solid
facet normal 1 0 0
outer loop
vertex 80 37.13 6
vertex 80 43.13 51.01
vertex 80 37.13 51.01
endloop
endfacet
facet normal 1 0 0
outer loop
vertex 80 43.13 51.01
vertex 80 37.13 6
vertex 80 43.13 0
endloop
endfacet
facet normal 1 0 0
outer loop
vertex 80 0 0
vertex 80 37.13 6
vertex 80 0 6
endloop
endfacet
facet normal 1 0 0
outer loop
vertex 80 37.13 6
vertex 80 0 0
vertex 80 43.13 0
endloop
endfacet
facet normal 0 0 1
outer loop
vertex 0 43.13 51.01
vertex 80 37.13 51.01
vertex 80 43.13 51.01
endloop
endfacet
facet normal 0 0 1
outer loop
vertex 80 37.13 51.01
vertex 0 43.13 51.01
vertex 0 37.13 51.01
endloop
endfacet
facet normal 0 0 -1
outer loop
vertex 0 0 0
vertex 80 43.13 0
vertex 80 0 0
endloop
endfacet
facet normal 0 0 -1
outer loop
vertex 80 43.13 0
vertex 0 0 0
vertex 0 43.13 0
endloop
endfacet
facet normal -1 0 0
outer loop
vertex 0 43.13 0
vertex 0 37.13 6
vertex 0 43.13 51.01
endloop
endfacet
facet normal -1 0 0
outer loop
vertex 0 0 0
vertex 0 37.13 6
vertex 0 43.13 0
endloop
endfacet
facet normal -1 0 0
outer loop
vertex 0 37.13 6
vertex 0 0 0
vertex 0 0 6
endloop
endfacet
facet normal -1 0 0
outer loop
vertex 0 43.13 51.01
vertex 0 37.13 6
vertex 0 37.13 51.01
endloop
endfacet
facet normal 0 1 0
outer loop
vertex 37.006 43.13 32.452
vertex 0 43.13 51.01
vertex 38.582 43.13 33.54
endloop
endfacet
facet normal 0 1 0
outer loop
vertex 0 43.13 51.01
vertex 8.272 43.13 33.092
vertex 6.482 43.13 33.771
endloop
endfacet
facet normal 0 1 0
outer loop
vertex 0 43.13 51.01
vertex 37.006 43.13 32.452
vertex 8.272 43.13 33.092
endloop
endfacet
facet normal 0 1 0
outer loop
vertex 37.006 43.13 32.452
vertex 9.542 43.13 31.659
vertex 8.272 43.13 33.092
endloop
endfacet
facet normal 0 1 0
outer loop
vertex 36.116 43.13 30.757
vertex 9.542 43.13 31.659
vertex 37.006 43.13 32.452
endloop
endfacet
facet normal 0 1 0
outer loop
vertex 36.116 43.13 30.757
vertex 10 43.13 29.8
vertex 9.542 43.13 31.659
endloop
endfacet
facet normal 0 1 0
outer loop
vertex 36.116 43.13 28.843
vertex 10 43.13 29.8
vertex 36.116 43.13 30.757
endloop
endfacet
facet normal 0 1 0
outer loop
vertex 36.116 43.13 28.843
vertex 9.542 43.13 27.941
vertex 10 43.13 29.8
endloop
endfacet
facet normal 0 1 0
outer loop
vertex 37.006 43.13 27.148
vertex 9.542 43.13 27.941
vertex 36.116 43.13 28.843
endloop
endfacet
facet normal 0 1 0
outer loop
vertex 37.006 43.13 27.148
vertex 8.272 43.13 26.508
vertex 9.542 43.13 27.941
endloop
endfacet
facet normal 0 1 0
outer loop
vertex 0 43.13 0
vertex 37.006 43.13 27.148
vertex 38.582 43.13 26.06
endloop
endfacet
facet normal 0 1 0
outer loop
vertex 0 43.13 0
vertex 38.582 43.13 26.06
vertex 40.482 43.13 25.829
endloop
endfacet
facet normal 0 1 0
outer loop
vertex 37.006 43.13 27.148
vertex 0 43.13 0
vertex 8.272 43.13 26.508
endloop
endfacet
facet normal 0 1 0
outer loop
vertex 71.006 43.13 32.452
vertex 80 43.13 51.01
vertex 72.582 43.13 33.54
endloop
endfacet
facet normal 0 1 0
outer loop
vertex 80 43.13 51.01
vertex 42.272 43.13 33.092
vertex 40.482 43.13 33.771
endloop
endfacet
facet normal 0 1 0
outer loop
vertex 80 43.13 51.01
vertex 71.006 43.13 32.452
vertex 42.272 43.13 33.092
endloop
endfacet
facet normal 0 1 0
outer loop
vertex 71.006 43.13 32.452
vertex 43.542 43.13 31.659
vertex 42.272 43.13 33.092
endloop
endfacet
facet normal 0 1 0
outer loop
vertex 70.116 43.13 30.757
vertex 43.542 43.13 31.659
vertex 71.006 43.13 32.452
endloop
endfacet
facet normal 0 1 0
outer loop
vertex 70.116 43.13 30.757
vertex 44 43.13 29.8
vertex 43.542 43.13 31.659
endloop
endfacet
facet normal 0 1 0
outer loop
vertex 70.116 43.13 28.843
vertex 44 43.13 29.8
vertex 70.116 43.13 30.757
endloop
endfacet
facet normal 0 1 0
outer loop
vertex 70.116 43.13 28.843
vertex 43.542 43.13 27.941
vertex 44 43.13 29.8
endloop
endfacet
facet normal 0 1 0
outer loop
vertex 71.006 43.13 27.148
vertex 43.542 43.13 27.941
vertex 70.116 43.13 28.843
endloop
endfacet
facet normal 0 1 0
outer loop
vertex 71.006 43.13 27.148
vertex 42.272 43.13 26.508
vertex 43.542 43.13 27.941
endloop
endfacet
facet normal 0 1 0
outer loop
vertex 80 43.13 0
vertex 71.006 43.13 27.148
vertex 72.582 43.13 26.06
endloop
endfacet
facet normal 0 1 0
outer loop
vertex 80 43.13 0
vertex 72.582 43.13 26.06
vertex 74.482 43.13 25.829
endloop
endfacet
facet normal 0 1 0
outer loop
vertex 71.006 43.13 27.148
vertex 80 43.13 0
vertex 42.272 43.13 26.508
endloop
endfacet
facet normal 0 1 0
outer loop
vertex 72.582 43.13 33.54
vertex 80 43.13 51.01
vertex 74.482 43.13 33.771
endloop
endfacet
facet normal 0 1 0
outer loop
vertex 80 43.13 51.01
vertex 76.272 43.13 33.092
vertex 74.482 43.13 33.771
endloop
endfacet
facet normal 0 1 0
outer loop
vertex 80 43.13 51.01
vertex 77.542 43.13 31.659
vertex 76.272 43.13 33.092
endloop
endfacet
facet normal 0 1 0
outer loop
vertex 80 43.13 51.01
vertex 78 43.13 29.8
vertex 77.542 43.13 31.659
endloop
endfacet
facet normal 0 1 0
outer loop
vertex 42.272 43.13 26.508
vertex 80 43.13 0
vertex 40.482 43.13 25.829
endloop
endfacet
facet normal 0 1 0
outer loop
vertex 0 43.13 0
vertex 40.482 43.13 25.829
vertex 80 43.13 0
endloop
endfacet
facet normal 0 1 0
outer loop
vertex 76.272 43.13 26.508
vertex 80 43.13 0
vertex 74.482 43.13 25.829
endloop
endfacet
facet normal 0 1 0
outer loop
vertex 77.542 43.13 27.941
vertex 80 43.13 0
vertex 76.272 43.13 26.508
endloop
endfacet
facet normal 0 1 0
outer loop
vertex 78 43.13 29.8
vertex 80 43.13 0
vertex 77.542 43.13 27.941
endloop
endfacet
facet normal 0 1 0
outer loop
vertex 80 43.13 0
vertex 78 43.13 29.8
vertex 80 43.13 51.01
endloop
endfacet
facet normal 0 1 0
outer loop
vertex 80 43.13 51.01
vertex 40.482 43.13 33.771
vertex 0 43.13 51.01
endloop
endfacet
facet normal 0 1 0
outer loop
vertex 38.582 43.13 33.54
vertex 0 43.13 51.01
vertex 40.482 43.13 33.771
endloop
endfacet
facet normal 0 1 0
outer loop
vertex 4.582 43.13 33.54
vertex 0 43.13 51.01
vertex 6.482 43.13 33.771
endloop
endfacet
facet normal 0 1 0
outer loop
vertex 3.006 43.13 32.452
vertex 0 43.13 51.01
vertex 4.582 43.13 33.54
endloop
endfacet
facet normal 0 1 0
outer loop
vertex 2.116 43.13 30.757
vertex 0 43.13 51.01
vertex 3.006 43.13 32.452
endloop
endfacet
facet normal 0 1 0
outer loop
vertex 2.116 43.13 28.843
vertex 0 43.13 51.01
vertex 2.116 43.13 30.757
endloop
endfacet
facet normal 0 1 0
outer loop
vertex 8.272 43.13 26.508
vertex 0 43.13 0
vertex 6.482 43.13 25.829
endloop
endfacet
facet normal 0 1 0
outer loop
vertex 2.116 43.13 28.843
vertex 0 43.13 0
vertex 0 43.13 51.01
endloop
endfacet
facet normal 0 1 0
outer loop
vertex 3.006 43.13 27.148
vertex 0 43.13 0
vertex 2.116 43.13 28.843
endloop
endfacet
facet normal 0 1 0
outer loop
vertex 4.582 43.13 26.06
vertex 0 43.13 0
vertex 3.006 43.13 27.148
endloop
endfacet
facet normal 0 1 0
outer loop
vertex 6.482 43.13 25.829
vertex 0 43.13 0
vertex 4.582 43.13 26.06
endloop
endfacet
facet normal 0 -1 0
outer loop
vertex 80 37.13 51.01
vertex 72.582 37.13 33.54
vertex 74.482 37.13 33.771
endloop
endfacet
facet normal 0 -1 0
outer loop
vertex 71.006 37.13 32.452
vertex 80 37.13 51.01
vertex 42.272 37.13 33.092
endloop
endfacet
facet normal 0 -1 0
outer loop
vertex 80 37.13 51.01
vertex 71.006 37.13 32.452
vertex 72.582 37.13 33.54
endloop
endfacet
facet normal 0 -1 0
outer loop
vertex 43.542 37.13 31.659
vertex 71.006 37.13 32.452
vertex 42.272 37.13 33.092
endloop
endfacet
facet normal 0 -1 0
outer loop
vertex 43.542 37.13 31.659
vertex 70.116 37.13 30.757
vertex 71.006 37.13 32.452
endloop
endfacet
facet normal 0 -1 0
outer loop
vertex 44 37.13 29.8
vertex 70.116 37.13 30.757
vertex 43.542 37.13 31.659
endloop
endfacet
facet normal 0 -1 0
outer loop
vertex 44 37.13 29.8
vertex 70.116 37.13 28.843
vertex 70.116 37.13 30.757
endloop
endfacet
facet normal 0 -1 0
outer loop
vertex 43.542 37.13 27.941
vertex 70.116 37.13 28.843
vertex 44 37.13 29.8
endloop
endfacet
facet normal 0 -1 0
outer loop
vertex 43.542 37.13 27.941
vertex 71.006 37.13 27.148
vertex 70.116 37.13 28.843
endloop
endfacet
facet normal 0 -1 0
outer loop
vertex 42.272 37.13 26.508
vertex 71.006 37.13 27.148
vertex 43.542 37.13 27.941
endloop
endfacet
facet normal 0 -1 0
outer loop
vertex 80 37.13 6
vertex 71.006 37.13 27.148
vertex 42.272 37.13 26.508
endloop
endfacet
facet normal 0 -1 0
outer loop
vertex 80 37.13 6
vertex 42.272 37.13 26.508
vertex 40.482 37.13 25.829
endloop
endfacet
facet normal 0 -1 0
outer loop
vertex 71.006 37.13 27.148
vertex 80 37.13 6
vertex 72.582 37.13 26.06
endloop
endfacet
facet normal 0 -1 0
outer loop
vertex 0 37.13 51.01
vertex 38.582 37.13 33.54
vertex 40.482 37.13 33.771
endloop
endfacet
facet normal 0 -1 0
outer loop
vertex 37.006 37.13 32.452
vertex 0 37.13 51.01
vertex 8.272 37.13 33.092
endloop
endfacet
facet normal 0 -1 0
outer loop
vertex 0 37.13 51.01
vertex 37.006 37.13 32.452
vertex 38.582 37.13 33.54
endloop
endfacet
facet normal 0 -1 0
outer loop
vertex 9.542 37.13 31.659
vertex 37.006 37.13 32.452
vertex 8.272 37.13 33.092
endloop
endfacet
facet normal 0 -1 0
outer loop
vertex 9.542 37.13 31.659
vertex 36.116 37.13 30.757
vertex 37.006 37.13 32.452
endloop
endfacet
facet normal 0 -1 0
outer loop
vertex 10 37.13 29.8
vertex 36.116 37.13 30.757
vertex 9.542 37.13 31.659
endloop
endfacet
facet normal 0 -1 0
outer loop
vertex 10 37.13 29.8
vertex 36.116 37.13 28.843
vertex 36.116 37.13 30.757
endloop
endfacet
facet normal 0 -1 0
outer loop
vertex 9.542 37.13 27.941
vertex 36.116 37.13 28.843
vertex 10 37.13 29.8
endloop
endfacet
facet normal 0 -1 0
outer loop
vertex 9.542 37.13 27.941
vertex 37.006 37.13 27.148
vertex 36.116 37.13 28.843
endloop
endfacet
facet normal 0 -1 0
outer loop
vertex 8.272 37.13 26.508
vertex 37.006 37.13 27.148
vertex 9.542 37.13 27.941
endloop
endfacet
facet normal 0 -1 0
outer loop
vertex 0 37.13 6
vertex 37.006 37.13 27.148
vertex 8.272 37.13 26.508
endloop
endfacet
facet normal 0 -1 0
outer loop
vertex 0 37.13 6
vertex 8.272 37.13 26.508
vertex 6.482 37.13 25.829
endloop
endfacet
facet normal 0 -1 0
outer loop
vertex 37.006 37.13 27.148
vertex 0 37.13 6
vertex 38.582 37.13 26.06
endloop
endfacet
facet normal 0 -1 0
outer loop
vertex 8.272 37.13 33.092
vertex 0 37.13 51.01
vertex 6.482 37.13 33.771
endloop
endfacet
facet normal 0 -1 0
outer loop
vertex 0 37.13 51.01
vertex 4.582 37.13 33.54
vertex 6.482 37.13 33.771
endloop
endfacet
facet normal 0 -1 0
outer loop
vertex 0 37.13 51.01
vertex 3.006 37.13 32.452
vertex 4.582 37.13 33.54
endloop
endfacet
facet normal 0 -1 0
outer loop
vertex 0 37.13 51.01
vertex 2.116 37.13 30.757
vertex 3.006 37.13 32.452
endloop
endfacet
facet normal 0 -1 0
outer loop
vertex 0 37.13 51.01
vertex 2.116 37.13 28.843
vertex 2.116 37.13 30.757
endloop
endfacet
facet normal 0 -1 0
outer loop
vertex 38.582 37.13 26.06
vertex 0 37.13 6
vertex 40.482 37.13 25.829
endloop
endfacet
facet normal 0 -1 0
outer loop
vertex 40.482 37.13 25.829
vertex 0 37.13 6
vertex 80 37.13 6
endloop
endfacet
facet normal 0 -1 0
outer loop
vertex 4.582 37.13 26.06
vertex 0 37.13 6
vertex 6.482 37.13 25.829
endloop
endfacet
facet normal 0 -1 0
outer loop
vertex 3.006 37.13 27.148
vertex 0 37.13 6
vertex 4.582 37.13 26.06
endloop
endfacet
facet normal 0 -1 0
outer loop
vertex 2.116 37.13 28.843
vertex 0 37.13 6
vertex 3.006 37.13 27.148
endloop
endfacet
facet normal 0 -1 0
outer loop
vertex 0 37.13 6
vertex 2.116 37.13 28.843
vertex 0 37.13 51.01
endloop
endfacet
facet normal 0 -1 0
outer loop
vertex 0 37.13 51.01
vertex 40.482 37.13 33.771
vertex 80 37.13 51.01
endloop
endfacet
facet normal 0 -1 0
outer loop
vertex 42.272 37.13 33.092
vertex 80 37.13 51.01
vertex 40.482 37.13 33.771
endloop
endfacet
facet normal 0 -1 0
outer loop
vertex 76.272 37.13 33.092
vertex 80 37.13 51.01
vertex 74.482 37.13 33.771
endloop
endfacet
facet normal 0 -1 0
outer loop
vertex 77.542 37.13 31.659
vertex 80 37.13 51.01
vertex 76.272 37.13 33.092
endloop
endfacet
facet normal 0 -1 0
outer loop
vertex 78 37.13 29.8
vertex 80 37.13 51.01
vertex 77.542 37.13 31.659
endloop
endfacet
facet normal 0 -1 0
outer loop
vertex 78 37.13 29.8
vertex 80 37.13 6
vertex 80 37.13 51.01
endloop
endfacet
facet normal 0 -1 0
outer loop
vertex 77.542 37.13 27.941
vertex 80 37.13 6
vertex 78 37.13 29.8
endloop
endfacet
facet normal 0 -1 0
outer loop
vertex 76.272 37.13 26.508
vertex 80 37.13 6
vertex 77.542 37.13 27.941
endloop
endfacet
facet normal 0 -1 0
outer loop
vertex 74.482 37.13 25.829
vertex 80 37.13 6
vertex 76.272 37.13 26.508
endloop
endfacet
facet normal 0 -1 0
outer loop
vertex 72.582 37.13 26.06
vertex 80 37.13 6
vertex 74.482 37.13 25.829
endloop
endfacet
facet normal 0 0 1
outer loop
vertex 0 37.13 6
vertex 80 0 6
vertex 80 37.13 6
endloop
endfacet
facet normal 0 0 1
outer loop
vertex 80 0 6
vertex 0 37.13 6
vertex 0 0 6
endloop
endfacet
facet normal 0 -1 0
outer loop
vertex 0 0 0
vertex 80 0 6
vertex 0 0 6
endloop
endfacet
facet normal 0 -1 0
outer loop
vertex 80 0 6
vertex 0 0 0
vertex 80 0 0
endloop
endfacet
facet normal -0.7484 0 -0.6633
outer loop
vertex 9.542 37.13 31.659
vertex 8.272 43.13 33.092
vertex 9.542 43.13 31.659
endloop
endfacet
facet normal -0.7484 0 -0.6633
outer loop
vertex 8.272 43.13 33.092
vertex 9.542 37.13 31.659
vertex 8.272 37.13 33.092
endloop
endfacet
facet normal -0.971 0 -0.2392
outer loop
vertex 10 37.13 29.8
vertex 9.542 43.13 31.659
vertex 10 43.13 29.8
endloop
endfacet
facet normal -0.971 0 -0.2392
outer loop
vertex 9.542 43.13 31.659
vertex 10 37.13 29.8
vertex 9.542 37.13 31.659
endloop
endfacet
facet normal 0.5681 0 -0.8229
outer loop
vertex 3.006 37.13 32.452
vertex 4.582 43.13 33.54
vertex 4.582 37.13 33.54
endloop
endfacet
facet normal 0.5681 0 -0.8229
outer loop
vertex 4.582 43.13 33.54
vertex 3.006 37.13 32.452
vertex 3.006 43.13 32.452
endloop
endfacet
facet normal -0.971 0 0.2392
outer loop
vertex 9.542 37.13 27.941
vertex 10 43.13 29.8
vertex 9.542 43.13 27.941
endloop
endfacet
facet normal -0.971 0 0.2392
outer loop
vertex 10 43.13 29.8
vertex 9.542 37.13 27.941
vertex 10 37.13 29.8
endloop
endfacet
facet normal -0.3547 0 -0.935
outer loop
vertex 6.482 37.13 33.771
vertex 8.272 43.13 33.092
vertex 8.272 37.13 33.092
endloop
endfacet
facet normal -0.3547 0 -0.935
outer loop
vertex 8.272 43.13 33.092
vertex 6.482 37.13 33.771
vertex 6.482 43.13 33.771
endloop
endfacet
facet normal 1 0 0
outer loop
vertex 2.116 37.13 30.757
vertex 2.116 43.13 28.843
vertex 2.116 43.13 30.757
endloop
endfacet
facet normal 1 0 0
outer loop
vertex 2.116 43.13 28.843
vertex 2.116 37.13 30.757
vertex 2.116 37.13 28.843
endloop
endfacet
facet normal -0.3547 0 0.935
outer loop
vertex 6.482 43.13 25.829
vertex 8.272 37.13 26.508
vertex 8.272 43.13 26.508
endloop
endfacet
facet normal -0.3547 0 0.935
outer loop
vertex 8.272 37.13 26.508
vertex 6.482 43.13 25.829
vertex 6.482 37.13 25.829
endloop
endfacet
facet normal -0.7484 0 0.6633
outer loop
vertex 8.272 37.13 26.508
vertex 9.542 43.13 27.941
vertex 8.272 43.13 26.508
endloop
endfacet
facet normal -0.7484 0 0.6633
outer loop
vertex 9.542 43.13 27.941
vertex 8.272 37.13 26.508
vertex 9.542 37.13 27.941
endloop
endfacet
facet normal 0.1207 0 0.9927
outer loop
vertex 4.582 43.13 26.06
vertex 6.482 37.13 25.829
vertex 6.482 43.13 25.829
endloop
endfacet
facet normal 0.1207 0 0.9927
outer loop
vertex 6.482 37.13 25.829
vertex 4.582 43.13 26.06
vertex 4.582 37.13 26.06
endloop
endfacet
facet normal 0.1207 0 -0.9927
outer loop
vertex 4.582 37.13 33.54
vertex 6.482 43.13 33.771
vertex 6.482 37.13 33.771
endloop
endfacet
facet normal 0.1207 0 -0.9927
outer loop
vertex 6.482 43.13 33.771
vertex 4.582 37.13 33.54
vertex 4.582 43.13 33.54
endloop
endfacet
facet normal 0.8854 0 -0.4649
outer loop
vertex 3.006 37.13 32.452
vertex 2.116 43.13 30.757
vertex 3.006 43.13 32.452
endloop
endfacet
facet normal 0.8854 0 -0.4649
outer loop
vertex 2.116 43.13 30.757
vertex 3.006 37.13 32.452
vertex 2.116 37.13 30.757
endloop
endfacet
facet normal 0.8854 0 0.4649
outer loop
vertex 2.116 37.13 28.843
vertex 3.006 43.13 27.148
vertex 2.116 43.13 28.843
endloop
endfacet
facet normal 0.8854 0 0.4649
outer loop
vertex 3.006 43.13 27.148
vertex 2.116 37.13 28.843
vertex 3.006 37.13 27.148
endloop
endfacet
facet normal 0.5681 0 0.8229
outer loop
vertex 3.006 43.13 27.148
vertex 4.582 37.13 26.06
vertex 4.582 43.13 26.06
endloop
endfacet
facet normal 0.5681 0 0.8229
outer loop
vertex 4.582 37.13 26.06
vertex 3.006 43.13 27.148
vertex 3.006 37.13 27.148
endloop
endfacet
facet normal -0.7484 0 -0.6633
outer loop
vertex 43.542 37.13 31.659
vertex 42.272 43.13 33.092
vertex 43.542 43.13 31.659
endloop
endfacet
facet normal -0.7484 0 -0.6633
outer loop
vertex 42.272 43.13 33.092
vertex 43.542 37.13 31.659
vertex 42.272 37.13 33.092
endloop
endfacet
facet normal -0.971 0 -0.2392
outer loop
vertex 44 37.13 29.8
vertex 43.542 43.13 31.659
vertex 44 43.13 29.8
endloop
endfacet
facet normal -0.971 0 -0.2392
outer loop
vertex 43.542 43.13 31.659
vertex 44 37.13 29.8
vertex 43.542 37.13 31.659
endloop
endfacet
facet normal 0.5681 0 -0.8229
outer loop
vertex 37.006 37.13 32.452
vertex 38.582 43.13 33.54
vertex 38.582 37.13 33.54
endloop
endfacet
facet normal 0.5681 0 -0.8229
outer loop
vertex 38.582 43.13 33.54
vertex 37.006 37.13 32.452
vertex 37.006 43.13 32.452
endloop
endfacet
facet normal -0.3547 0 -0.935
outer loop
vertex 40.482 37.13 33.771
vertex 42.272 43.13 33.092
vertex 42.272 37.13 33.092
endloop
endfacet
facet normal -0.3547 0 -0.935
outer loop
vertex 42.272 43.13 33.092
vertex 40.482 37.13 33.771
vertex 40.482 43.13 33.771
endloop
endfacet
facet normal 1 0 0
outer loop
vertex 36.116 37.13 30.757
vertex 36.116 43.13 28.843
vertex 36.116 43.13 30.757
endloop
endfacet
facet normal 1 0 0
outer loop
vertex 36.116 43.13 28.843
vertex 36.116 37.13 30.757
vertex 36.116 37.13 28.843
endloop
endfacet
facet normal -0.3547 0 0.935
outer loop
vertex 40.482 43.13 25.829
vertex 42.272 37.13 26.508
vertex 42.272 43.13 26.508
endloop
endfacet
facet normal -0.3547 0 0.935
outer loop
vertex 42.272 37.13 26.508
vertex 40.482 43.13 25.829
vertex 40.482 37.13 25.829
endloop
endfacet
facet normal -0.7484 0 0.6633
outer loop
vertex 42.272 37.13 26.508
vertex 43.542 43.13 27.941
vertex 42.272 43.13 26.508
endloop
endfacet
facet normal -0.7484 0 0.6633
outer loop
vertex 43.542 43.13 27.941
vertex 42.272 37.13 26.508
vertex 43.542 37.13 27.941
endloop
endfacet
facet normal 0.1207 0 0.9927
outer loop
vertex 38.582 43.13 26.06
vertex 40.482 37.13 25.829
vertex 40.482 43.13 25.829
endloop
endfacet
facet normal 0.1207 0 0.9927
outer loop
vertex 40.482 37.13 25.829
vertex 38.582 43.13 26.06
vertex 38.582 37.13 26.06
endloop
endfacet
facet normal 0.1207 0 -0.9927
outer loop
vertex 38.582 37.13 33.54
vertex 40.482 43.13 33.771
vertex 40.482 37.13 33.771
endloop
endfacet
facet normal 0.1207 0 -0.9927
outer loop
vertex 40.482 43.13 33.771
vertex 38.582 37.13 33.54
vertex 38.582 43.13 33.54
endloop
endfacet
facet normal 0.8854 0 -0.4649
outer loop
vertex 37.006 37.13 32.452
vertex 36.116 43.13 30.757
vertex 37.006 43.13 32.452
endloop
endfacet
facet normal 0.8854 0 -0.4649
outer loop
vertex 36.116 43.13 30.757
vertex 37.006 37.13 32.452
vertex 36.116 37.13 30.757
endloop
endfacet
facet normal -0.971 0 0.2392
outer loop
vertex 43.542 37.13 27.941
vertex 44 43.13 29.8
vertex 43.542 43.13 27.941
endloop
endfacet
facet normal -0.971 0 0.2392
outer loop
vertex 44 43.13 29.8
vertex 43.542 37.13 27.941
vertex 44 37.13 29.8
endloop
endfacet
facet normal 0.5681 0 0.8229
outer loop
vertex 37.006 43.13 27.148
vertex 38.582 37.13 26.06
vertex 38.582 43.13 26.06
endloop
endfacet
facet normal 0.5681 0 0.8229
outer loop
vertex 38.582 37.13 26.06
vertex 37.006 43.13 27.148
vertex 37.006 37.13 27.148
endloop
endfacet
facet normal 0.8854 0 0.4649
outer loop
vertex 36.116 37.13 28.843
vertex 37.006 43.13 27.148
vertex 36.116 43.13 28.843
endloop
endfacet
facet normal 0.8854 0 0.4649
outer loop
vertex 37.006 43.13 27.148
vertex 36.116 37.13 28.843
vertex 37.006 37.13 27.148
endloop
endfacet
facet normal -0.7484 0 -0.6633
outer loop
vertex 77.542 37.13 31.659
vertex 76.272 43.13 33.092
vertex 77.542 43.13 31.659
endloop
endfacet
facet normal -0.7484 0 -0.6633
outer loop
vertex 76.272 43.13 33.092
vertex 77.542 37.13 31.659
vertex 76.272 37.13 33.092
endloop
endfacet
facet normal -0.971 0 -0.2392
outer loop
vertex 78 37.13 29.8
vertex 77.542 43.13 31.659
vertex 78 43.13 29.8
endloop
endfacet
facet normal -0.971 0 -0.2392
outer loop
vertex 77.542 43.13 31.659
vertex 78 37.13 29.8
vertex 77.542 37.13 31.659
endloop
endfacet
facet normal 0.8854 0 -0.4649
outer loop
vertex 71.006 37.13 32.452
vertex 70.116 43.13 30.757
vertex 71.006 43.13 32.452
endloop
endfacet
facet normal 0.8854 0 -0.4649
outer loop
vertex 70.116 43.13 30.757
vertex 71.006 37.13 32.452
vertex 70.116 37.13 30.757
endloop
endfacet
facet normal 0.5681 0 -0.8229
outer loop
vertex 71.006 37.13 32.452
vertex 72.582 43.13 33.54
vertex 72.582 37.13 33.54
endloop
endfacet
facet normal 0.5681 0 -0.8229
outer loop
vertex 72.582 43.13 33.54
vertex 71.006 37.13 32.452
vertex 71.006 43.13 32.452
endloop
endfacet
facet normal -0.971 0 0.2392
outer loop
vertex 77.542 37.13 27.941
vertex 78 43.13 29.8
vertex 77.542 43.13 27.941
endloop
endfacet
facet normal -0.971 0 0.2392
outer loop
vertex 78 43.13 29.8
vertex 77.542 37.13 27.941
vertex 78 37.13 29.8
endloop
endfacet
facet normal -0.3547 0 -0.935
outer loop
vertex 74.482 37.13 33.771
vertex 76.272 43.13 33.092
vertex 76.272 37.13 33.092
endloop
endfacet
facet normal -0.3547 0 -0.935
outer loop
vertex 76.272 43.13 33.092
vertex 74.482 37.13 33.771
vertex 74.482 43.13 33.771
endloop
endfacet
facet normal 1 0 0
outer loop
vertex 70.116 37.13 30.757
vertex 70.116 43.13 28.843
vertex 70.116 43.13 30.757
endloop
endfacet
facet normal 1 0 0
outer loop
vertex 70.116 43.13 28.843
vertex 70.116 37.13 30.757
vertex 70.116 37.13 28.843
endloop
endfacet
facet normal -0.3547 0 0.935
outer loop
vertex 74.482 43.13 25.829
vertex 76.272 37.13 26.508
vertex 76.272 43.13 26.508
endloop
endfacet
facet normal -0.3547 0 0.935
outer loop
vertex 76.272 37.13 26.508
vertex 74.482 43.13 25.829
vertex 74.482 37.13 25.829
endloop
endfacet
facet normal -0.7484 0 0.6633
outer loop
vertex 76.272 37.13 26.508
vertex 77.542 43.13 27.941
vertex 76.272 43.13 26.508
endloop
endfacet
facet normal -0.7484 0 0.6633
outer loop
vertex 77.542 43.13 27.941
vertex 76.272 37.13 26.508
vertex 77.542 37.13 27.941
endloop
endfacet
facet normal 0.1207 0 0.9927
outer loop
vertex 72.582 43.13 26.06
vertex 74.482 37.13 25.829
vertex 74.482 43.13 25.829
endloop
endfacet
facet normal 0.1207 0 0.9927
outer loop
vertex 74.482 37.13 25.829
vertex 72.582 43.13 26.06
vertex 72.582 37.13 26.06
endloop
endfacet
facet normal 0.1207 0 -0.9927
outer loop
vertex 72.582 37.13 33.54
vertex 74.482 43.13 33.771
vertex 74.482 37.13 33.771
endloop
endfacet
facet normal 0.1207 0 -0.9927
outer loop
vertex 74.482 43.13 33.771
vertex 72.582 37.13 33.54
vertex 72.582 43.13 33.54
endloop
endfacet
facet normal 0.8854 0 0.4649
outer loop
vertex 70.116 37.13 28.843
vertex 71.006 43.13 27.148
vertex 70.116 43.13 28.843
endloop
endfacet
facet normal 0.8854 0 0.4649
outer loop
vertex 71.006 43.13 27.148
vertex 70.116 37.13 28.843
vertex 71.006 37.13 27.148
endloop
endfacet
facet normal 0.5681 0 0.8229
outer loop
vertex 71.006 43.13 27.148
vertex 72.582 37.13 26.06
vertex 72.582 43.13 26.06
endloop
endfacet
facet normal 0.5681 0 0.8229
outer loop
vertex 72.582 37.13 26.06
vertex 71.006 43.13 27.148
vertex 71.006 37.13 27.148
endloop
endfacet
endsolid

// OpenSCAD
/* doodle-meta {"version":1,"parameters":{"width":{"label":"Overall width","description":"Changes the overall width of the bracket","unit":"mm","feature":"body_width"},"depth":{"label":"Overall depth","description":"Changes the overall depth of the bracket","unit":"mm","feature":"body_depth"},"height":{"label":"Overall height","description":"Changes the overall height of the bracket","unit":"mm","feature":"body_height"},"wall_thickness":{"label":"Wall thickness","description":"Changes the thickness of the bracket walls","unit":"mm","feature":"wall_thickness"},"hole_diameter":{"label":"Hole diameter","description":"Changes the diameter of the mounting holes","unit":"mm","feature":"holes"}},"features":{"body_width":{"kind":"dimension","axis":"x","label":"Overall width"},"body_depth":{"kind":"dimension","axis":"y","label":"Overall depth"},"body_height":{"kind":"dimension","axis":"z","label":"Overall height"},"wall_thickness":{"kind":"region","label":"Wall thickness","min":[0,0,0],"max":[{"parameter":"wall_thickness"},{"parameter":"depth"},{"parameter":"height"}]},"holes":{"kind":"region","label":"Mounting holes","min":[{"parameter":"width","scale":0.15},{"parameter":"wall_thickness"},{"parameter":"height","scale":0.3}],"max":[{"parameter":"width","scale":0.85},{"parameter":"wall_thickness","scale":1.0},{"parameter":"height","scale":0.7}]}}} */

// Top-level parameters (user-editable)
width = 80.0;
depth = 43.13;
height = 51.01;
wall_thickness = 6.0;
hole_diameter = 8.0;

// Derived sizes (not user-editable)
hole_spacing = (width - 2 * wall_thickness) / 2.0;
hole_z = height * 0.4158; // From front view center v=0.4158 -> Z = (1-0.4158)*height? No, v is down. Z = (1-v)*height. Wait.
// Front view: v=0 is top, v=1 is bottom. Z = (1-v)*height.
// Center v = 0.4158. Z = (1 - 0.4158) * height = 0.5842 * height.
hole_z_pos = (1.0 - 0.4158) * height;

// Modules
module l_bracket_body() {
    // Vertical wall (back)
    translate([0, depth - wall_thickness, 0])
        cube([width, wall_thickness, height]);
        
    // Horizontal base (bottom)
    translate([0, 0, 0])
        cube([width, depth, wall_thickness]);
}

module hole_cutter() {
    // Cylinder axis along Y to cut through the vertical wall (which is in XZ plane, thickness along Y)
    // The wall is at Y from depth-wall_thickness to depth.
    // We need a cutter that spans the wall thickness.
    // Using center=true and placing it at the center of the wall thickness.
    translate([0, depth - wall_thickness/2, 0])
        rotate([90, 0, 0])
            cylinder(h = wall_thickness + 2, d = hole_diameter, center=true);
}

// Main design
difference() {
    l_bracket_body();
    
    // Three holes
    for (i = [0:2]) {
        translate([wall_thickness + i * hole_spacing, 0, hole_z_pos])
            hole_cutter();
    }
}
